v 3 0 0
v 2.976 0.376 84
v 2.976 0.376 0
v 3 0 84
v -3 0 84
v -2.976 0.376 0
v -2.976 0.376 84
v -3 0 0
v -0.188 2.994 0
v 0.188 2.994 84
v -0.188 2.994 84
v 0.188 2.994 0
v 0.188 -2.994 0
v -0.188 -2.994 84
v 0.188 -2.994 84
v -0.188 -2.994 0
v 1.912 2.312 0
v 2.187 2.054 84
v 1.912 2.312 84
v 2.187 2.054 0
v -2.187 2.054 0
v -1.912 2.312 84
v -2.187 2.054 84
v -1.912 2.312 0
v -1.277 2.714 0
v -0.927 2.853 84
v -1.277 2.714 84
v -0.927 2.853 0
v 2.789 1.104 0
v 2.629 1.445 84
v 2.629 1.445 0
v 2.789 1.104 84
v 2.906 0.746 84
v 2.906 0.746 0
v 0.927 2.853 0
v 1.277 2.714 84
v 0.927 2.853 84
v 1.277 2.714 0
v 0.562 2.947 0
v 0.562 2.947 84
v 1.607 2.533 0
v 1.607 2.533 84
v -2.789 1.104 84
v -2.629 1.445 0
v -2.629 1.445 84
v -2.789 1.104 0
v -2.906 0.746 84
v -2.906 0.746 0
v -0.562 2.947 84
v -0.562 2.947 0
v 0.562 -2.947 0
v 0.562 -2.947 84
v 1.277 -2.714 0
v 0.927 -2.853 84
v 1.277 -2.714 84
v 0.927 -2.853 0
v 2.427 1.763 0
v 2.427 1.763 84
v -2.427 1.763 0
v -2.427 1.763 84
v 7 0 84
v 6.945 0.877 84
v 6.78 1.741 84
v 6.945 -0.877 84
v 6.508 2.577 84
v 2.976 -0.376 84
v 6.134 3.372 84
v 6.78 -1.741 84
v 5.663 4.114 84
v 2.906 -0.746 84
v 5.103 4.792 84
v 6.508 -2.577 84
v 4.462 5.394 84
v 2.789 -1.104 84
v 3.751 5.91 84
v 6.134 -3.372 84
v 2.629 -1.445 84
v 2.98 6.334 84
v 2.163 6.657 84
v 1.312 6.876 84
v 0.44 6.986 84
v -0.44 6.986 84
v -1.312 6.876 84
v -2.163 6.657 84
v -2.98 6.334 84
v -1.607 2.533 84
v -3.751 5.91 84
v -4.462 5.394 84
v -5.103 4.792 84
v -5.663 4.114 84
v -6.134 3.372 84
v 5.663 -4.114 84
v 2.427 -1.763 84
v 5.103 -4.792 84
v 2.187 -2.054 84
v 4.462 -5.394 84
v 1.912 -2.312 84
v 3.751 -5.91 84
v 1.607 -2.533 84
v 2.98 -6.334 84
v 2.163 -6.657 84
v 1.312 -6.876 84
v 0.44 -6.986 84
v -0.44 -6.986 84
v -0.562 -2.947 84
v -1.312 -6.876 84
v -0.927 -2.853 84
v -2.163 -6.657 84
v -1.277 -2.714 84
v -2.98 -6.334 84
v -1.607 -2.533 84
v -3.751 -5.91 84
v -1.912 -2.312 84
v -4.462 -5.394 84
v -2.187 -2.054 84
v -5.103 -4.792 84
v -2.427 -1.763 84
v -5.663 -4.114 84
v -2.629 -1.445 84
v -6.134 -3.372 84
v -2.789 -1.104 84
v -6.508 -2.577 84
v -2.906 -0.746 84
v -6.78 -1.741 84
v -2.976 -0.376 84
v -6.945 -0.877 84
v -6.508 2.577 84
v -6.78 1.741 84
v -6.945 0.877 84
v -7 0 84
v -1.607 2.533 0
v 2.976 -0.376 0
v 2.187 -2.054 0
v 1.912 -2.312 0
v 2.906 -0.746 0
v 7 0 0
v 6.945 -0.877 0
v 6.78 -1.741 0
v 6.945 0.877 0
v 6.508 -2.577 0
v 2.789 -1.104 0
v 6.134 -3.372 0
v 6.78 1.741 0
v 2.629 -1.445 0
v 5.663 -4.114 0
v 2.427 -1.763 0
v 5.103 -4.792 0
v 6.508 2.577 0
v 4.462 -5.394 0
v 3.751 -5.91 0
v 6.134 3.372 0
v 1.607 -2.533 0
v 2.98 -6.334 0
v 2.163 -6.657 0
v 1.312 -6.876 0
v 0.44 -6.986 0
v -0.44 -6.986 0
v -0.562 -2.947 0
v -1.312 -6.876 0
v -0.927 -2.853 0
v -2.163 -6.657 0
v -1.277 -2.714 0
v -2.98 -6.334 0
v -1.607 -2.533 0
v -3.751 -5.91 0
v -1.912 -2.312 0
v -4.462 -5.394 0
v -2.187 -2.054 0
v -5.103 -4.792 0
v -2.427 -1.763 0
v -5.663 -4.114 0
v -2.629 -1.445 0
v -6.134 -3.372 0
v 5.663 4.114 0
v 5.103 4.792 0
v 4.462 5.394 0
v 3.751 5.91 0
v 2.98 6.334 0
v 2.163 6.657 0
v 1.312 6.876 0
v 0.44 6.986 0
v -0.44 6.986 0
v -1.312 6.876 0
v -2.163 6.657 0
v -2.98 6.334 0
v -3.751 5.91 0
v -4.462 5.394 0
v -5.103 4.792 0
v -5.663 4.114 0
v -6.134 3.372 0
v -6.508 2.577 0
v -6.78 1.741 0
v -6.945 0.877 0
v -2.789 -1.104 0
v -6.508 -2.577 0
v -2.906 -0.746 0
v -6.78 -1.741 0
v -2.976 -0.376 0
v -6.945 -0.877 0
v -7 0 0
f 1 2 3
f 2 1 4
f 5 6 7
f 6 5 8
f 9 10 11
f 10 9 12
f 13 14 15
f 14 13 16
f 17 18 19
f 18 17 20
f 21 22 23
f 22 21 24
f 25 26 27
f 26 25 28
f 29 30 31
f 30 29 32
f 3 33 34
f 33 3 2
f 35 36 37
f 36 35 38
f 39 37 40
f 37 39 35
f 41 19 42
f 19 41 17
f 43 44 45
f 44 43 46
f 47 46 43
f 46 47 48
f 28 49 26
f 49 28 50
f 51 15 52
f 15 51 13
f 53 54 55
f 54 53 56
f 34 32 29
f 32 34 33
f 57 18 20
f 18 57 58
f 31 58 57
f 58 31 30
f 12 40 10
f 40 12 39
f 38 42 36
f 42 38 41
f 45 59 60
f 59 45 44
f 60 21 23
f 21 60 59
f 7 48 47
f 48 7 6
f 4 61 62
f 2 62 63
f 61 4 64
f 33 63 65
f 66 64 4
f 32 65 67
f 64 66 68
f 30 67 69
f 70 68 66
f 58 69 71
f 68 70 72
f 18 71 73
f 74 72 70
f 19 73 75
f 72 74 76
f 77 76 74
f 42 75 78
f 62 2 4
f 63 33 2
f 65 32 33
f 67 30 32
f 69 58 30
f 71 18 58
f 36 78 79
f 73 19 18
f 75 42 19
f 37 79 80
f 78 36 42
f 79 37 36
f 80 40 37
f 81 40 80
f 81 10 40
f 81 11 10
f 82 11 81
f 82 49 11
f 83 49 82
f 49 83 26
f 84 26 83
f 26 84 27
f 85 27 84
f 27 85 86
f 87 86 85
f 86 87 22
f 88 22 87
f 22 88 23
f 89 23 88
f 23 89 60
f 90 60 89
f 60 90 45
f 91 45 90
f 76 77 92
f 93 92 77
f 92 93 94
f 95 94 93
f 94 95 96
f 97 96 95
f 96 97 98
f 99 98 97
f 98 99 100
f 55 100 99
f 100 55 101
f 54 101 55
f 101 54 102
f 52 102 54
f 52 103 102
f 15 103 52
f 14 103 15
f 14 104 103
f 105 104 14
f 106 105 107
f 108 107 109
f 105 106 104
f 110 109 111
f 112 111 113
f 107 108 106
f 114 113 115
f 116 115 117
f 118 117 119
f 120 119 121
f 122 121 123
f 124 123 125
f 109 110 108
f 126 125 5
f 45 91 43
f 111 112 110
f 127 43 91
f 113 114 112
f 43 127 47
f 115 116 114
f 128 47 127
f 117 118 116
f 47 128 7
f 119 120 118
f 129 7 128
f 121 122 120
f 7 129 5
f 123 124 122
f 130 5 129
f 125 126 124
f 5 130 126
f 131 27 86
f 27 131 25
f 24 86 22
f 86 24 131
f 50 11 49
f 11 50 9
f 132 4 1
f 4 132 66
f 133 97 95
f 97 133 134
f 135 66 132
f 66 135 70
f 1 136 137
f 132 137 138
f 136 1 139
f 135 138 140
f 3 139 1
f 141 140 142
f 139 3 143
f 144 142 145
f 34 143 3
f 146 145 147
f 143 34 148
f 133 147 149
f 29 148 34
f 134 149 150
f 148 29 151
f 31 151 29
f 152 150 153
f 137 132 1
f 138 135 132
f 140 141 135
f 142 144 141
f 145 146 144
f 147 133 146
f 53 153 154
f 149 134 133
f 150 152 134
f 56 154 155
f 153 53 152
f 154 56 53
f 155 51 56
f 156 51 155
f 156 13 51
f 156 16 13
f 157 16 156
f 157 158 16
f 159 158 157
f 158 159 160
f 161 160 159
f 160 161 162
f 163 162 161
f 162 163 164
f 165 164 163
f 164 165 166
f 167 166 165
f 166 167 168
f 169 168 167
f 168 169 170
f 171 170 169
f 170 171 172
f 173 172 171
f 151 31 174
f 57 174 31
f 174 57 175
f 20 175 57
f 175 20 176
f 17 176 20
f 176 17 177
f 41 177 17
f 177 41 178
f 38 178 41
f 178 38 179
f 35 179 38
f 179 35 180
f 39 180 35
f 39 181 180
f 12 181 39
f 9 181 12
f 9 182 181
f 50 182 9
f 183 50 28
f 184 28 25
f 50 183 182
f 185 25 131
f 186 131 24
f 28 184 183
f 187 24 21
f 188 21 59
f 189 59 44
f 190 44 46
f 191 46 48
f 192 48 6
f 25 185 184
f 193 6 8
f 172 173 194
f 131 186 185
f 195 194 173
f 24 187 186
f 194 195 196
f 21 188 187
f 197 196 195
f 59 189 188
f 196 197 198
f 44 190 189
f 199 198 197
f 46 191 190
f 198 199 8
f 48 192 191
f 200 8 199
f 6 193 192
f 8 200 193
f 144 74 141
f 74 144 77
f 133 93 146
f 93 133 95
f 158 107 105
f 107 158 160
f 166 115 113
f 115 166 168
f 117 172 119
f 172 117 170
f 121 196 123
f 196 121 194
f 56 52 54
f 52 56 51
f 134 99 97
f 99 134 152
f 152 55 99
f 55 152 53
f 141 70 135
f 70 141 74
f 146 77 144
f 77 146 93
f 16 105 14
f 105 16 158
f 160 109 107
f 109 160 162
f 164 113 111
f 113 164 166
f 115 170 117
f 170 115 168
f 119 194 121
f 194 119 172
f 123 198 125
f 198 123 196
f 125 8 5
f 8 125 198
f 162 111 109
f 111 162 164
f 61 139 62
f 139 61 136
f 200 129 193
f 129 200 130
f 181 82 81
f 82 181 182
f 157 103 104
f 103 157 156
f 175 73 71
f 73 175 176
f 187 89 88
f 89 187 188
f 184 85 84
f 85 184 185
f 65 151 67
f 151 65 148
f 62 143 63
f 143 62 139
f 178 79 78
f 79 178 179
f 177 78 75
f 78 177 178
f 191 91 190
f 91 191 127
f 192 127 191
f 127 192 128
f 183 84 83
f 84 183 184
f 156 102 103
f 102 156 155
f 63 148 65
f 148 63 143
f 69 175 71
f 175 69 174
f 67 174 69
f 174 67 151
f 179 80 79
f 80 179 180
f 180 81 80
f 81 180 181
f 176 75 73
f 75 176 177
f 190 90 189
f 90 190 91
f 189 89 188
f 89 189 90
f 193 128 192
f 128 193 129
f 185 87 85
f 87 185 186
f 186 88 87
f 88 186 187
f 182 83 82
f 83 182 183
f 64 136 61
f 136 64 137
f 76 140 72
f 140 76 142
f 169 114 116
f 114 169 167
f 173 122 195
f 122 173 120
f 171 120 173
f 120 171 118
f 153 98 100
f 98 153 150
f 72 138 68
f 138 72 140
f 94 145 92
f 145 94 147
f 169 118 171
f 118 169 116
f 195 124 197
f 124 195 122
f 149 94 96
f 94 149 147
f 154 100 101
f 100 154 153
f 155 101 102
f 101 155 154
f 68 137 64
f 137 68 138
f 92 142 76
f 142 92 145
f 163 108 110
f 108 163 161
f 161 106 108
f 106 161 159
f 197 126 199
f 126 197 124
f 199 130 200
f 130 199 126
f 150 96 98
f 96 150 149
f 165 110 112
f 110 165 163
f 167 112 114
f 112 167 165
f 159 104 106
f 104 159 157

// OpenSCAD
$fn = 50;


difference() {
	union() {
		cylinder(h = 84, r = 7.0000000000);
	}
	union() {
		cylinder(h = 84, r = 3.0000000000);
		cylinder(h = 84, r = 1.5000000000);
		cylinder(h = 84, r = 1.5000000000);
		cylinder(h = 84, r = 1.5000000000);
	}
}
